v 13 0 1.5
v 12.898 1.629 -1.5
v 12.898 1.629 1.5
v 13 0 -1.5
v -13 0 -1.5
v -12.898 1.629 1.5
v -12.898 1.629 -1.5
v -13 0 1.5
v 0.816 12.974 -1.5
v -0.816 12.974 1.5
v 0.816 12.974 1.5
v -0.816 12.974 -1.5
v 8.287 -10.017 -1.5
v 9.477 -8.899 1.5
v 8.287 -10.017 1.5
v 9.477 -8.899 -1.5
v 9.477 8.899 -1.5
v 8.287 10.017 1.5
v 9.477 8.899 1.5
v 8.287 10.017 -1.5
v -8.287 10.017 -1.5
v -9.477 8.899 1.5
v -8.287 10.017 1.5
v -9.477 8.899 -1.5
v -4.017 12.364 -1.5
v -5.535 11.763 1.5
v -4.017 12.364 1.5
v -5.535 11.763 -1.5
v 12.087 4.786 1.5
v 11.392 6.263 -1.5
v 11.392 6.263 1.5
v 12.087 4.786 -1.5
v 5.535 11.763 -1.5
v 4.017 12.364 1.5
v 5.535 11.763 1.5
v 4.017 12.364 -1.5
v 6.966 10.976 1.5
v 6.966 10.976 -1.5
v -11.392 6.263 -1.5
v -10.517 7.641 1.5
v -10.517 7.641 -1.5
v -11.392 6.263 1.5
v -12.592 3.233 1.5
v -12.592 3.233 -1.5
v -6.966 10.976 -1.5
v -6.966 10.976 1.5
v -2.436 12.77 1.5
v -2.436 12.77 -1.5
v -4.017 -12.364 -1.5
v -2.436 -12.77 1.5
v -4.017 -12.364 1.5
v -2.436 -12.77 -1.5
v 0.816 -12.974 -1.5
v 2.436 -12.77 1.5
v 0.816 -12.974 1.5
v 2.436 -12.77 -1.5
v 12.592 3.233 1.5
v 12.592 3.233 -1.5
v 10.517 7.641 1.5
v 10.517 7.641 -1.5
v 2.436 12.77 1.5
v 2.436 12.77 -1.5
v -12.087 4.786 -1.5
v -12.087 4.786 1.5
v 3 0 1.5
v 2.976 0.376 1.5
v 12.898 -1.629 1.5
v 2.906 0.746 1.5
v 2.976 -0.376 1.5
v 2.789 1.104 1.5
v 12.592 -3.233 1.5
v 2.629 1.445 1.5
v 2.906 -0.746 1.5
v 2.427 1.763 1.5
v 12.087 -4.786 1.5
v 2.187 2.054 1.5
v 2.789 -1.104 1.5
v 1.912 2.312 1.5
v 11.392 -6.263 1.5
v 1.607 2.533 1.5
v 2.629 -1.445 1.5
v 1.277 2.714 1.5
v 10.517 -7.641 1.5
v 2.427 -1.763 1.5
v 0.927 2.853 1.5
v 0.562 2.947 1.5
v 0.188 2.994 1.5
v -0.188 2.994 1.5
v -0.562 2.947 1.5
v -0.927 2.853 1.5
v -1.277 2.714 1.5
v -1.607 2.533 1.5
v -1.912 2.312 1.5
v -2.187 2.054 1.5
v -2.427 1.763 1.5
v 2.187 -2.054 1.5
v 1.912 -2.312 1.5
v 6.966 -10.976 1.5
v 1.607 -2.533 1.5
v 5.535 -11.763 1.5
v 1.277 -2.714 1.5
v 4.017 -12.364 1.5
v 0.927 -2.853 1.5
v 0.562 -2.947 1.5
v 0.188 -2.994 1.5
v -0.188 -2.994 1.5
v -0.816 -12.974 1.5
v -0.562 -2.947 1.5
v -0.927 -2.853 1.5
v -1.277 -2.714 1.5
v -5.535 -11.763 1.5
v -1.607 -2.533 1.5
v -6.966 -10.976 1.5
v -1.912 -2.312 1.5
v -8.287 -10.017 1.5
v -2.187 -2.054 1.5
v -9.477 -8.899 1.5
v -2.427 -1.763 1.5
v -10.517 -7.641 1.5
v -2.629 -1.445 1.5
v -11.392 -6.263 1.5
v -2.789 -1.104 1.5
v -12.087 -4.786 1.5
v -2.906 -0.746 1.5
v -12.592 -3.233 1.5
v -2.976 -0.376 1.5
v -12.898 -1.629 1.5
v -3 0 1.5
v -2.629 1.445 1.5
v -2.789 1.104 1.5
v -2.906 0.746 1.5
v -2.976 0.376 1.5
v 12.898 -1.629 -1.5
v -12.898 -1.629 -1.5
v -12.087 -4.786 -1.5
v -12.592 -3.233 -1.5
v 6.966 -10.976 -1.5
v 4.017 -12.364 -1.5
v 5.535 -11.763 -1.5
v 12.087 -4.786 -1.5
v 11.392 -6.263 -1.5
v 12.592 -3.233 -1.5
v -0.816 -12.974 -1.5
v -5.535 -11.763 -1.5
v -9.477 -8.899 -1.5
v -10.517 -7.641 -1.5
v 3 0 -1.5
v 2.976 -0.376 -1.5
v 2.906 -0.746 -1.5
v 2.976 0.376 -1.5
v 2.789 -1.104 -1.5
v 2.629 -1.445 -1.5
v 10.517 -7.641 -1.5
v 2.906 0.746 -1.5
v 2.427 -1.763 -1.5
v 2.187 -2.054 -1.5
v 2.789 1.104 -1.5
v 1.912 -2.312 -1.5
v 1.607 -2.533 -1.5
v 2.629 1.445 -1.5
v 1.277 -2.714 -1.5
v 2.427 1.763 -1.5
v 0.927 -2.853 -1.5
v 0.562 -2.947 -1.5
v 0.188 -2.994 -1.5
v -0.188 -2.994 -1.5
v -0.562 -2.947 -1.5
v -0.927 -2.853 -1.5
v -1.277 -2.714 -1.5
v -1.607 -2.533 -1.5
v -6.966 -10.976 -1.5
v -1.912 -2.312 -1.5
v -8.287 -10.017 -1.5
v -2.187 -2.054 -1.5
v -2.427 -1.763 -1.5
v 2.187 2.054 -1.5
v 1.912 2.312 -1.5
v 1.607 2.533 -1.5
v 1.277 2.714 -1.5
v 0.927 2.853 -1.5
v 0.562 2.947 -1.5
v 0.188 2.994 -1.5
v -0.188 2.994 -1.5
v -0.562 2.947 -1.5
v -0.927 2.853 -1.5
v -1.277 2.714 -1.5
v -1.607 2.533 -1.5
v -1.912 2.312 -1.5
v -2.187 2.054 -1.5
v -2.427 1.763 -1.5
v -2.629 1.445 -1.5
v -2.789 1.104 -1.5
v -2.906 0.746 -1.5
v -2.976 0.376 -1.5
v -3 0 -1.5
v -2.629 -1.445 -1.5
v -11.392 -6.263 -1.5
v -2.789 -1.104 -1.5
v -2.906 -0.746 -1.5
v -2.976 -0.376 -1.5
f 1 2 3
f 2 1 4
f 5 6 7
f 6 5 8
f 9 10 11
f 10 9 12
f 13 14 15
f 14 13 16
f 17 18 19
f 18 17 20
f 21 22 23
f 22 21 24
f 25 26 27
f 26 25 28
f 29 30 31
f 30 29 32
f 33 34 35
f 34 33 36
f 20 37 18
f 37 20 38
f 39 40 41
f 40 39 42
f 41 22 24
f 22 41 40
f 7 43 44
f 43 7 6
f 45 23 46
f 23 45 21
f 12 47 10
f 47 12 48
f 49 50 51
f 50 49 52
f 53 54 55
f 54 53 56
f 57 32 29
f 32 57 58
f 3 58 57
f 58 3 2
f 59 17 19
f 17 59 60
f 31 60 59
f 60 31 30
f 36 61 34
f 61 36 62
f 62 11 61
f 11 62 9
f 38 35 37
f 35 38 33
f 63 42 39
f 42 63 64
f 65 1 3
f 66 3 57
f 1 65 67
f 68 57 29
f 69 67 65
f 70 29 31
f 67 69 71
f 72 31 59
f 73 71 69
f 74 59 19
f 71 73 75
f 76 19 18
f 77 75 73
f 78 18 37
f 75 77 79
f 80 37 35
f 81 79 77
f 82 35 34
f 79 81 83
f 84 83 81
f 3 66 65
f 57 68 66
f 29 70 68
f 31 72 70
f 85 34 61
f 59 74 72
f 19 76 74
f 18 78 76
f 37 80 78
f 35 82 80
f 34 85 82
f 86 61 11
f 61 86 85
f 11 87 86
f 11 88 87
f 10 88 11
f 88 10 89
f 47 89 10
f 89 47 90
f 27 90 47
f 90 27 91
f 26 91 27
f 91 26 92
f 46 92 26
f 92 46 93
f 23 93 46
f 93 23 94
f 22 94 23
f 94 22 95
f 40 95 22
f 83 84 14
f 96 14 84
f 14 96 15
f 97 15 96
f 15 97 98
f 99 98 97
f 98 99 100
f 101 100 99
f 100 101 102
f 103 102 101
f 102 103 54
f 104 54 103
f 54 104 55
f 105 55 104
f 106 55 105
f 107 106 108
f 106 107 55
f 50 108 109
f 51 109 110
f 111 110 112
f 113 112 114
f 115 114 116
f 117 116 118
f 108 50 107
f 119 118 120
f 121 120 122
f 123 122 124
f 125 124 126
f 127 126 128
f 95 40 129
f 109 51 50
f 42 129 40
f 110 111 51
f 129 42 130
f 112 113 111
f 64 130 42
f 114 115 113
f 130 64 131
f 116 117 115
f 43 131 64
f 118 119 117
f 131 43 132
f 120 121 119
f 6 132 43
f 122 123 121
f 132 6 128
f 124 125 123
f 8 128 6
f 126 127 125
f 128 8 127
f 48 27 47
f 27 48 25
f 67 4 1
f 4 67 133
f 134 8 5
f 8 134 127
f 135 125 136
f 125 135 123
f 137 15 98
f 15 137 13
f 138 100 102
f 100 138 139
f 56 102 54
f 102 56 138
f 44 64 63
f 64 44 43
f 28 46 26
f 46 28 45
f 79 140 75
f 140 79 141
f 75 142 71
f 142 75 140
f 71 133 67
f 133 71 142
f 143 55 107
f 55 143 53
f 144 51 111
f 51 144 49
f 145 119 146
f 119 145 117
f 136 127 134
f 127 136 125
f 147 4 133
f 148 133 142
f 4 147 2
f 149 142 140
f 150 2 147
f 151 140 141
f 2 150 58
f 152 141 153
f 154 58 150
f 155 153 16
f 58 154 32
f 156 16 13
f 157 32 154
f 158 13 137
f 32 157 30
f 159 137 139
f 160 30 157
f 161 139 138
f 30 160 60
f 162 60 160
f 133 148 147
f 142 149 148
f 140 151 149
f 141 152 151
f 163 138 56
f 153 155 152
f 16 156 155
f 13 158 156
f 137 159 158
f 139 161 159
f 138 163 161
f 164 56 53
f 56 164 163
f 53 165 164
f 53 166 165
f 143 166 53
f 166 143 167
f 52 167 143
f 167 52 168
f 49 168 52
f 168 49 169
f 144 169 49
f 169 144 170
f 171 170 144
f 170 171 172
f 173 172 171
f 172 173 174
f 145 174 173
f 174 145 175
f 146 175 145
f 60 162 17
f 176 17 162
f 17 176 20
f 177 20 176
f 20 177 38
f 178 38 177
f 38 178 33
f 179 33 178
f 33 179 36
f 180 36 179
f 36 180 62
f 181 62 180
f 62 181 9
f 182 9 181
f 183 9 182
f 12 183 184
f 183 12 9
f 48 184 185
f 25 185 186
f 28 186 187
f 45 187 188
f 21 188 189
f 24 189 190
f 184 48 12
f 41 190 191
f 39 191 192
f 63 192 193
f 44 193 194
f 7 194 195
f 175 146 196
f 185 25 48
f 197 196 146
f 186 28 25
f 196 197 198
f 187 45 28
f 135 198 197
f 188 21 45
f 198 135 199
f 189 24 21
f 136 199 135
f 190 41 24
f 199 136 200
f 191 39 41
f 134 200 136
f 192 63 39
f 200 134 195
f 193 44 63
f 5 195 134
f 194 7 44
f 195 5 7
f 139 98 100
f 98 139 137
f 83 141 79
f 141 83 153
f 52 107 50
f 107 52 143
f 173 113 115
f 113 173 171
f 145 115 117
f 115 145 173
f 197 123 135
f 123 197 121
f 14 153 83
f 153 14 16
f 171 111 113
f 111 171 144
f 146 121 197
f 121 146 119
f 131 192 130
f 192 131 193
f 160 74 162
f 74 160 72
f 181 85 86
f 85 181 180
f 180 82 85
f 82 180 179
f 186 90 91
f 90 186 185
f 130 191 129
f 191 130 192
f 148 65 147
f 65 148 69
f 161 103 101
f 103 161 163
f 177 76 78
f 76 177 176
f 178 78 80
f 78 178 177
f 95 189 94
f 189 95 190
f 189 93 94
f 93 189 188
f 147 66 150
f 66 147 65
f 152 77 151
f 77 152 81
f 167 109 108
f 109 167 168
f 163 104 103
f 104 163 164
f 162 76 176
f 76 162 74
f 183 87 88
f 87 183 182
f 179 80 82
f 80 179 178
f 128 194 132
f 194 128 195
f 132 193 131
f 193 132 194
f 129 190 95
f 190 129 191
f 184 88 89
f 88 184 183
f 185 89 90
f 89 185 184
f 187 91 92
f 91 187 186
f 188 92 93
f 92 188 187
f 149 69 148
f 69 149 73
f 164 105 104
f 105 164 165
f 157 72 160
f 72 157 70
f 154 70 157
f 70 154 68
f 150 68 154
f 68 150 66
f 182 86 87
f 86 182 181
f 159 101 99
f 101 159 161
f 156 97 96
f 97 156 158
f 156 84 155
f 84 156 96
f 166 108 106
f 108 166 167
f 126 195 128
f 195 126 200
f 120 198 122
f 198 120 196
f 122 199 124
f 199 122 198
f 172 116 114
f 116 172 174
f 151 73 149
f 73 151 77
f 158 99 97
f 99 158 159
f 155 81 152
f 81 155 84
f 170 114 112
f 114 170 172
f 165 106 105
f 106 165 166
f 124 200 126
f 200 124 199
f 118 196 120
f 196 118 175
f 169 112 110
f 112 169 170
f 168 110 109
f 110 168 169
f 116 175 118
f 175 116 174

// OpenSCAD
$fn = 50;


difference() {
	union() {
		translate(v = [0, 0, -1.5000000000]) {
			cylinder(h = 3, r = 13.0000000000);
		}
	}
	union() {
		translate(v = [0, 0, -100.0000000000]) {
			cylinder(h = 200, r = 3.0000000000);
		}
	}
}
